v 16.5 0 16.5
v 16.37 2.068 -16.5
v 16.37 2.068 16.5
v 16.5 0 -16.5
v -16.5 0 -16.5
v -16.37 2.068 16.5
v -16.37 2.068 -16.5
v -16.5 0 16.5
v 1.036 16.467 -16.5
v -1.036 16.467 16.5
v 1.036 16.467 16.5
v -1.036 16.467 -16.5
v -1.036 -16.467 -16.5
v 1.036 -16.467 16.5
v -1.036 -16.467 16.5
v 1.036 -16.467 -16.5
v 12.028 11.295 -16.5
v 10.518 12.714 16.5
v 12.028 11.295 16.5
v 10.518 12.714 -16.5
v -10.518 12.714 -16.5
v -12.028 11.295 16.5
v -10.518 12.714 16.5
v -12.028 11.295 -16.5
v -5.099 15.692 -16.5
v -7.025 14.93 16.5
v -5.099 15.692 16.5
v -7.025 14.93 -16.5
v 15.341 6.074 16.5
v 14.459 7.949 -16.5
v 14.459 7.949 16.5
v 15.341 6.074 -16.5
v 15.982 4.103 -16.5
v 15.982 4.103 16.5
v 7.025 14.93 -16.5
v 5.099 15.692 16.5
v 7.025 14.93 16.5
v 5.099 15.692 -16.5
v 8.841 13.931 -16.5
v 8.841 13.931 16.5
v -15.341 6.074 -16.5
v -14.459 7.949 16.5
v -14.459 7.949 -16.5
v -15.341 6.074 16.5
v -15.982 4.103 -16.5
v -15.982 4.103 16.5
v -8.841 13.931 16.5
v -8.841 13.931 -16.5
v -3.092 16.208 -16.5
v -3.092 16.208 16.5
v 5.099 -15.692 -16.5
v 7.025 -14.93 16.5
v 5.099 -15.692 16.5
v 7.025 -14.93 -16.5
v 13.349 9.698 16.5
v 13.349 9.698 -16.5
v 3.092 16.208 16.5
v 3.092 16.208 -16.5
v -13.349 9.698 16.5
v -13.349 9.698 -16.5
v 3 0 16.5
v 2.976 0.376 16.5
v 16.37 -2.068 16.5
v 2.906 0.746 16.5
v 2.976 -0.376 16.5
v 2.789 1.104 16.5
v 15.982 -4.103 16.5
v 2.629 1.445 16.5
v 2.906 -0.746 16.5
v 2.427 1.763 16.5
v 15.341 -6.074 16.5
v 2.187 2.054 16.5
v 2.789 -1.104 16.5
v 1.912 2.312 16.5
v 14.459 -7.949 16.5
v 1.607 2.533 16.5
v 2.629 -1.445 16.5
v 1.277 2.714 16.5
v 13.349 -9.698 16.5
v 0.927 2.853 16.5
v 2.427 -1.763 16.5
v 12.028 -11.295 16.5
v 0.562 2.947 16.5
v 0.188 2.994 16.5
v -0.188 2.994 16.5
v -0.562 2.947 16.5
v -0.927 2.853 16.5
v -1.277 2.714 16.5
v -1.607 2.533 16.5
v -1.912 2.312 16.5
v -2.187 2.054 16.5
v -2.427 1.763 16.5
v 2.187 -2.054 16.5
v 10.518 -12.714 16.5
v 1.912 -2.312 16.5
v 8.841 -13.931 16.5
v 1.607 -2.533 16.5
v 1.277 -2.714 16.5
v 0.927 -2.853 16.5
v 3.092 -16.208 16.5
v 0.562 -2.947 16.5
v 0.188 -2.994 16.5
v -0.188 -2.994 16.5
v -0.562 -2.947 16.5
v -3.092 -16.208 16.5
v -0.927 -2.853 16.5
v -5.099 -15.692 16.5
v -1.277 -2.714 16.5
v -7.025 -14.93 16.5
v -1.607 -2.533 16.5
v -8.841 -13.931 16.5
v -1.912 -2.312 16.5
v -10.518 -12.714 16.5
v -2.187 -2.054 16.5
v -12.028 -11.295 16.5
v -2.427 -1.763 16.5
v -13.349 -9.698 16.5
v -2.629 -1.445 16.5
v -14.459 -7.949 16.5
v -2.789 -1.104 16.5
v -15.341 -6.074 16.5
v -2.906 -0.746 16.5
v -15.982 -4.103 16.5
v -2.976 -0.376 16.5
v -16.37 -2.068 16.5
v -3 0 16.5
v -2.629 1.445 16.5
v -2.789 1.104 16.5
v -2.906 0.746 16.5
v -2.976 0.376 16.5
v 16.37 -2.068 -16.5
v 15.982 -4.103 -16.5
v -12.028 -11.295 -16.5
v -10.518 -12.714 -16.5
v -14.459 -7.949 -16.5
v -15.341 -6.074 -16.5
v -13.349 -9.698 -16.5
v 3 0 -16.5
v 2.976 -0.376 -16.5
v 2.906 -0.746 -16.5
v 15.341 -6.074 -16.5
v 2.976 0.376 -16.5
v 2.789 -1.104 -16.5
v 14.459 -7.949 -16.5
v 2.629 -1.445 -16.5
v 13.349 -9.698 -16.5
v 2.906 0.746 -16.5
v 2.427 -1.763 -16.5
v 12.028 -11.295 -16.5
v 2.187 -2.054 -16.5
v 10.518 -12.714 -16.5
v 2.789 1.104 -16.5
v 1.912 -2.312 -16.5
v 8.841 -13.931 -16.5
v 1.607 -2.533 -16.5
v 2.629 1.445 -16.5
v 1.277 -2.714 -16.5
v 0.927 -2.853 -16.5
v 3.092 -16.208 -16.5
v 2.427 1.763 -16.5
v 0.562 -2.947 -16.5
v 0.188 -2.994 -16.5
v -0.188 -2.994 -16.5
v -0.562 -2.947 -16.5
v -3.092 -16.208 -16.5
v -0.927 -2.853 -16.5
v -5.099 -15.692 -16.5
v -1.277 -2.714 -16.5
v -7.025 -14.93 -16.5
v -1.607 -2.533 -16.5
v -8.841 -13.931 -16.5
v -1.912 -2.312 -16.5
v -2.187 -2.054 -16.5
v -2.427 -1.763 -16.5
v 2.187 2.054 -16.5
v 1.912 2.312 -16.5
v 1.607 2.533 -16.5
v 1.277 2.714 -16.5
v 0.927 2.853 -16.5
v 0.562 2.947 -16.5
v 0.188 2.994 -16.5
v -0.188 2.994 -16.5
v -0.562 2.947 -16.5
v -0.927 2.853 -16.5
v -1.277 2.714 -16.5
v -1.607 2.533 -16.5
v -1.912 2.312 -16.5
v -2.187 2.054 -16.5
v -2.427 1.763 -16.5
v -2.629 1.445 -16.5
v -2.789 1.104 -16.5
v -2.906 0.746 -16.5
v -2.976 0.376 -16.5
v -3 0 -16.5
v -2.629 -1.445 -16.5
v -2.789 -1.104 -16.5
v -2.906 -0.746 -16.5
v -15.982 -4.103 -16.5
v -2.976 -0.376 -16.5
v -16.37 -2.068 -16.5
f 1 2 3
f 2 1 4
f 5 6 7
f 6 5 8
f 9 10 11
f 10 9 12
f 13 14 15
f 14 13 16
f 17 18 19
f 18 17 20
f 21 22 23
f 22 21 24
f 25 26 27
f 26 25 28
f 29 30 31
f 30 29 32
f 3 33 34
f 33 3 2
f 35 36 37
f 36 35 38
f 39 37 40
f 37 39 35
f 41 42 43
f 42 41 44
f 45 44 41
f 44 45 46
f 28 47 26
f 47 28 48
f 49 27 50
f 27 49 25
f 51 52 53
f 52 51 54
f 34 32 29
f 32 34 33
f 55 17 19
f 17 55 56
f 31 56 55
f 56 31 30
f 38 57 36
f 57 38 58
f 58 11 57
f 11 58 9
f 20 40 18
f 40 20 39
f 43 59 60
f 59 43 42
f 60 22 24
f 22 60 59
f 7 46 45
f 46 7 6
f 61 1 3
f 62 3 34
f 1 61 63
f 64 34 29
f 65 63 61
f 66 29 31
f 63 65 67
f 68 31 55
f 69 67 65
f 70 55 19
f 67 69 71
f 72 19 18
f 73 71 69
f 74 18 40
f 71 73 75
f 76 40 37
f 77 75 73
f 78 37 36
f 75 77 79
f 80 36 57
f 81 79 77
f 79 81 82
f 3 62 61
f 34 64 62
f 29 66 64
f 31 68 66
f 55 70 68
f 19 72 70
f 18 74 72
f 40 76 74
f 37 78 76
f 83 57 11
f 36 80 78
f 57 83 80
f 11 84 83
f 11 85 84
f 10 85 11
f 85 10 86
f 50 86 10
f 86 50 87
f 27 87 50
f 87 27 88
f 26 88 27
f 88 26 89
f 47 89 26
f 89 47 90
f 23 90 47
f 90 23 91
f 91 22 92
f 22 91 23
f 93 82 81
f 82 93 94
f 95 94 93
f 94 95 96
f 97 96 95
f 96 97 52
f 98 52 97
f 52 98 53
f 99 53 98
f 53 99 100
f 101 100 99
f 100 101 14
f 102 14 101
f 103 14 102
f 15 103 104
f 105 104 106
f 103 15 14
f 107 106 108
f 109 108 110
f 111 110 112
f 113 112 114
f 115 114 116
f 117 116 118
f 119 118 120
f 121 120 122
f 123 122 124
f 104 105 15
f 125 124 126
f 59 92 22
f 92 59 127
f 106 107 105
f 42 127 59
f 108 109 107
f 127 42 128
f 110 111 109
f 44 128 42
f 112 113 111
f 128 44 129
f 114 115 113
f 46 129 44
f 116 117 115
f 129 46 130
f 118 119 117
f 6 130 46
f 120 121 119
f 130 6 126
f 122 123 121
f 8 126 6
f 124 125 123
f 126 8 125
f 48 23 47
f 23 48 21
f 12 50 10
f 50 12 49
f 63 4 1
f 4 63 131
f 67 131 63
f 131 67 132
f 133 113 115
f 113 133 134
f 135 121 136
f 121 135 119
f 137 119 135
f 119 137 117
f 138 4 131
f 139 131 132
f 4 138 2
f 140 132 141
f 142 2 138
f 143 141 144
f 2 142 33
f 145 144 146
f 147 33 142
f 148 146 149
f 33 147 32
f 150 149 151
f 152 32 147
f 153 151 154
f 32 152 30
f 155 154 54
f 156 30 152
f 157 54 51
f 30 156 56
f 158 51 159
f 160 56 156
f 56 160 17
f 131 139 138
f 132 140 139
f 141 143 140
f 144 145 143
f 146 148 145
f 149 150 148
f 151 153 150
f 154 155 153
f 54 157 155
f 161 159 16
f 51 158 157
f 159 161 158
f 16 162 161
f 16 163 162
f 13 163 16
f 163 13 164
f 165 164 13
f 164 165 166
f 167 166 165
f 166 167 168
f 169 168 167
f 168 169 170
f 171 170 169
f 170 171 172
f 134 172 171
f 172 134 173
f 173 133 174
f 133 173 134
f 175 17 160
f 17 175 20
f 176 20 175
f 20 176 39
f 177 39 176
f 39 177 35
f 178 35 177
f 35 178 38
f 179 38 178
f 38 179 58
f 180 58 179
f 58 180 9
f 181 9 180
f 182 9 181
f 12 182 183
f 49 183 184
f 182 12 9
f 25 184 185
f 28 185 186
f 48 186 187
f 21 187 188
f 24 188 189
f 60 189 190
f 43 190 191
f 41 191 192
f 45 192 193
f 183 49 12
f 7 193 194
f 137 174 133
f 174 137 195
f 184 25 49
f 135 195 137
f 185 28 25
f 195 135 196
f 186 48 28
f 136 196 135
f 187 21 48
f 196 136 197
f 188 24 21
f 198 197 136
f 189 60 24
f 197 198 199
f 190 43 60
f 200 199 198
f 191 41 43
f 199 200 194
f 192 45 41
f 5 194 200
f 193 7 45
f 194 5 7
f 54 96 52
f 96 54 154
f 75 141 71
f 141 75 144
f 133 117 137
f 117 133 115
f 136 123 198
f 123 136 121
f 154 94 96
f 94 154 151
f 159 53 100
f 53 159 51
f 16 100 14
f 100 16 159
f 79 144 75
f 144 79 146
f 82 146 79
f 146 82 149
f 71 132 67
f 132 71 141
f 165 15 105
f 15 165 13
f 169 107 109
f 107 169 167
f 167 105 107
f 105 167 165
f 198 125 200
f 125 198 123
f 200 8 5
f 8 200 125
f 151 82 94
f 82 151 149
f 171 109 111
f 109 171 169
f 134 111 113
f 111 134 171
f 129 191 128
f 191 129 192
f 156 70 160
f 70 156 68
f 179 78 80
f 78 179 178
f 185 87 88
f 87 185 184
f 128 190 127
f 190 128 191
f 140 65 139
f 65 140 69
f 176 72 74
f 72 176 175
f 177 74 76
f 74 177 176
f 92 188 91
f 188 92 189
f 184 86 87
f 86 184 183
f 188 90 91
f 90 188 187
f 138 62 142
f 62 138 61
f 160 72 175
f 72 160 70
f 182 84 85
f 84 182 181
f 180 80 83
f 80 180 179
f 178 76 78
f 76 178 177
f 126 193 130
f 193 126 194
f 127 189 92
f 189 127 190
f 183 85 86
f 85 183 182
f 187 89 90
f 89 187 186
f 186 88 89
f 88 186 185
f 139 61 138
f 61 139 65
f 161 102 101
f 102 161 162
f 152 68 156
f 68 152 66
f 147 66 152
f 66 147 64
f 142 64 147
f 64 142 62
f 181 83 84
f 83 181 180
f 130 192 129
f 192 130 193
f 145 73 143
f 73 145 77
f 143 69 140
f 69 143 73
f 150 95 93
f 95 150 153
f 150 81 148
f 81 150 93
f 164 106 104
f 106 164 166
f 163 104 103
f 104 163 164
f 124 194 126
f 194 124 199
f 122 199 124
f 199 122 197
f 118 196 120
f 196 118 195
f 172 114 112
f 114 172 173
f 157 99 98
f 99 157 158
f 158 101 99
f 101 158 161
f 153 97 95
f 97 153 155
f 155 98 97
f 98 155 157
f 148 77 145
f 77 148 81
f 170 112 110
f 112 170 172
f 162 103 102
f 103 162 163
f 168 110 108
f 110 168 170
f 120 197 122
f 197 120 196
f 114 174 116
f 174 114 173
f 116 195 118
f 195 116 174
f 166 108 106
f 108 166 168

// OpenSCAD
$fn = 50;


difference() {
	union() {
		translate(v = [0, 0, -16.5000000000]) {
			cylinder(h = 33, r = 16.5000000000);
		}
	}
	union() {
		translate(v = [0, 0, -100.0000000000]) {
			cylinder(h = 200, r = 3);
		}
	}
}
